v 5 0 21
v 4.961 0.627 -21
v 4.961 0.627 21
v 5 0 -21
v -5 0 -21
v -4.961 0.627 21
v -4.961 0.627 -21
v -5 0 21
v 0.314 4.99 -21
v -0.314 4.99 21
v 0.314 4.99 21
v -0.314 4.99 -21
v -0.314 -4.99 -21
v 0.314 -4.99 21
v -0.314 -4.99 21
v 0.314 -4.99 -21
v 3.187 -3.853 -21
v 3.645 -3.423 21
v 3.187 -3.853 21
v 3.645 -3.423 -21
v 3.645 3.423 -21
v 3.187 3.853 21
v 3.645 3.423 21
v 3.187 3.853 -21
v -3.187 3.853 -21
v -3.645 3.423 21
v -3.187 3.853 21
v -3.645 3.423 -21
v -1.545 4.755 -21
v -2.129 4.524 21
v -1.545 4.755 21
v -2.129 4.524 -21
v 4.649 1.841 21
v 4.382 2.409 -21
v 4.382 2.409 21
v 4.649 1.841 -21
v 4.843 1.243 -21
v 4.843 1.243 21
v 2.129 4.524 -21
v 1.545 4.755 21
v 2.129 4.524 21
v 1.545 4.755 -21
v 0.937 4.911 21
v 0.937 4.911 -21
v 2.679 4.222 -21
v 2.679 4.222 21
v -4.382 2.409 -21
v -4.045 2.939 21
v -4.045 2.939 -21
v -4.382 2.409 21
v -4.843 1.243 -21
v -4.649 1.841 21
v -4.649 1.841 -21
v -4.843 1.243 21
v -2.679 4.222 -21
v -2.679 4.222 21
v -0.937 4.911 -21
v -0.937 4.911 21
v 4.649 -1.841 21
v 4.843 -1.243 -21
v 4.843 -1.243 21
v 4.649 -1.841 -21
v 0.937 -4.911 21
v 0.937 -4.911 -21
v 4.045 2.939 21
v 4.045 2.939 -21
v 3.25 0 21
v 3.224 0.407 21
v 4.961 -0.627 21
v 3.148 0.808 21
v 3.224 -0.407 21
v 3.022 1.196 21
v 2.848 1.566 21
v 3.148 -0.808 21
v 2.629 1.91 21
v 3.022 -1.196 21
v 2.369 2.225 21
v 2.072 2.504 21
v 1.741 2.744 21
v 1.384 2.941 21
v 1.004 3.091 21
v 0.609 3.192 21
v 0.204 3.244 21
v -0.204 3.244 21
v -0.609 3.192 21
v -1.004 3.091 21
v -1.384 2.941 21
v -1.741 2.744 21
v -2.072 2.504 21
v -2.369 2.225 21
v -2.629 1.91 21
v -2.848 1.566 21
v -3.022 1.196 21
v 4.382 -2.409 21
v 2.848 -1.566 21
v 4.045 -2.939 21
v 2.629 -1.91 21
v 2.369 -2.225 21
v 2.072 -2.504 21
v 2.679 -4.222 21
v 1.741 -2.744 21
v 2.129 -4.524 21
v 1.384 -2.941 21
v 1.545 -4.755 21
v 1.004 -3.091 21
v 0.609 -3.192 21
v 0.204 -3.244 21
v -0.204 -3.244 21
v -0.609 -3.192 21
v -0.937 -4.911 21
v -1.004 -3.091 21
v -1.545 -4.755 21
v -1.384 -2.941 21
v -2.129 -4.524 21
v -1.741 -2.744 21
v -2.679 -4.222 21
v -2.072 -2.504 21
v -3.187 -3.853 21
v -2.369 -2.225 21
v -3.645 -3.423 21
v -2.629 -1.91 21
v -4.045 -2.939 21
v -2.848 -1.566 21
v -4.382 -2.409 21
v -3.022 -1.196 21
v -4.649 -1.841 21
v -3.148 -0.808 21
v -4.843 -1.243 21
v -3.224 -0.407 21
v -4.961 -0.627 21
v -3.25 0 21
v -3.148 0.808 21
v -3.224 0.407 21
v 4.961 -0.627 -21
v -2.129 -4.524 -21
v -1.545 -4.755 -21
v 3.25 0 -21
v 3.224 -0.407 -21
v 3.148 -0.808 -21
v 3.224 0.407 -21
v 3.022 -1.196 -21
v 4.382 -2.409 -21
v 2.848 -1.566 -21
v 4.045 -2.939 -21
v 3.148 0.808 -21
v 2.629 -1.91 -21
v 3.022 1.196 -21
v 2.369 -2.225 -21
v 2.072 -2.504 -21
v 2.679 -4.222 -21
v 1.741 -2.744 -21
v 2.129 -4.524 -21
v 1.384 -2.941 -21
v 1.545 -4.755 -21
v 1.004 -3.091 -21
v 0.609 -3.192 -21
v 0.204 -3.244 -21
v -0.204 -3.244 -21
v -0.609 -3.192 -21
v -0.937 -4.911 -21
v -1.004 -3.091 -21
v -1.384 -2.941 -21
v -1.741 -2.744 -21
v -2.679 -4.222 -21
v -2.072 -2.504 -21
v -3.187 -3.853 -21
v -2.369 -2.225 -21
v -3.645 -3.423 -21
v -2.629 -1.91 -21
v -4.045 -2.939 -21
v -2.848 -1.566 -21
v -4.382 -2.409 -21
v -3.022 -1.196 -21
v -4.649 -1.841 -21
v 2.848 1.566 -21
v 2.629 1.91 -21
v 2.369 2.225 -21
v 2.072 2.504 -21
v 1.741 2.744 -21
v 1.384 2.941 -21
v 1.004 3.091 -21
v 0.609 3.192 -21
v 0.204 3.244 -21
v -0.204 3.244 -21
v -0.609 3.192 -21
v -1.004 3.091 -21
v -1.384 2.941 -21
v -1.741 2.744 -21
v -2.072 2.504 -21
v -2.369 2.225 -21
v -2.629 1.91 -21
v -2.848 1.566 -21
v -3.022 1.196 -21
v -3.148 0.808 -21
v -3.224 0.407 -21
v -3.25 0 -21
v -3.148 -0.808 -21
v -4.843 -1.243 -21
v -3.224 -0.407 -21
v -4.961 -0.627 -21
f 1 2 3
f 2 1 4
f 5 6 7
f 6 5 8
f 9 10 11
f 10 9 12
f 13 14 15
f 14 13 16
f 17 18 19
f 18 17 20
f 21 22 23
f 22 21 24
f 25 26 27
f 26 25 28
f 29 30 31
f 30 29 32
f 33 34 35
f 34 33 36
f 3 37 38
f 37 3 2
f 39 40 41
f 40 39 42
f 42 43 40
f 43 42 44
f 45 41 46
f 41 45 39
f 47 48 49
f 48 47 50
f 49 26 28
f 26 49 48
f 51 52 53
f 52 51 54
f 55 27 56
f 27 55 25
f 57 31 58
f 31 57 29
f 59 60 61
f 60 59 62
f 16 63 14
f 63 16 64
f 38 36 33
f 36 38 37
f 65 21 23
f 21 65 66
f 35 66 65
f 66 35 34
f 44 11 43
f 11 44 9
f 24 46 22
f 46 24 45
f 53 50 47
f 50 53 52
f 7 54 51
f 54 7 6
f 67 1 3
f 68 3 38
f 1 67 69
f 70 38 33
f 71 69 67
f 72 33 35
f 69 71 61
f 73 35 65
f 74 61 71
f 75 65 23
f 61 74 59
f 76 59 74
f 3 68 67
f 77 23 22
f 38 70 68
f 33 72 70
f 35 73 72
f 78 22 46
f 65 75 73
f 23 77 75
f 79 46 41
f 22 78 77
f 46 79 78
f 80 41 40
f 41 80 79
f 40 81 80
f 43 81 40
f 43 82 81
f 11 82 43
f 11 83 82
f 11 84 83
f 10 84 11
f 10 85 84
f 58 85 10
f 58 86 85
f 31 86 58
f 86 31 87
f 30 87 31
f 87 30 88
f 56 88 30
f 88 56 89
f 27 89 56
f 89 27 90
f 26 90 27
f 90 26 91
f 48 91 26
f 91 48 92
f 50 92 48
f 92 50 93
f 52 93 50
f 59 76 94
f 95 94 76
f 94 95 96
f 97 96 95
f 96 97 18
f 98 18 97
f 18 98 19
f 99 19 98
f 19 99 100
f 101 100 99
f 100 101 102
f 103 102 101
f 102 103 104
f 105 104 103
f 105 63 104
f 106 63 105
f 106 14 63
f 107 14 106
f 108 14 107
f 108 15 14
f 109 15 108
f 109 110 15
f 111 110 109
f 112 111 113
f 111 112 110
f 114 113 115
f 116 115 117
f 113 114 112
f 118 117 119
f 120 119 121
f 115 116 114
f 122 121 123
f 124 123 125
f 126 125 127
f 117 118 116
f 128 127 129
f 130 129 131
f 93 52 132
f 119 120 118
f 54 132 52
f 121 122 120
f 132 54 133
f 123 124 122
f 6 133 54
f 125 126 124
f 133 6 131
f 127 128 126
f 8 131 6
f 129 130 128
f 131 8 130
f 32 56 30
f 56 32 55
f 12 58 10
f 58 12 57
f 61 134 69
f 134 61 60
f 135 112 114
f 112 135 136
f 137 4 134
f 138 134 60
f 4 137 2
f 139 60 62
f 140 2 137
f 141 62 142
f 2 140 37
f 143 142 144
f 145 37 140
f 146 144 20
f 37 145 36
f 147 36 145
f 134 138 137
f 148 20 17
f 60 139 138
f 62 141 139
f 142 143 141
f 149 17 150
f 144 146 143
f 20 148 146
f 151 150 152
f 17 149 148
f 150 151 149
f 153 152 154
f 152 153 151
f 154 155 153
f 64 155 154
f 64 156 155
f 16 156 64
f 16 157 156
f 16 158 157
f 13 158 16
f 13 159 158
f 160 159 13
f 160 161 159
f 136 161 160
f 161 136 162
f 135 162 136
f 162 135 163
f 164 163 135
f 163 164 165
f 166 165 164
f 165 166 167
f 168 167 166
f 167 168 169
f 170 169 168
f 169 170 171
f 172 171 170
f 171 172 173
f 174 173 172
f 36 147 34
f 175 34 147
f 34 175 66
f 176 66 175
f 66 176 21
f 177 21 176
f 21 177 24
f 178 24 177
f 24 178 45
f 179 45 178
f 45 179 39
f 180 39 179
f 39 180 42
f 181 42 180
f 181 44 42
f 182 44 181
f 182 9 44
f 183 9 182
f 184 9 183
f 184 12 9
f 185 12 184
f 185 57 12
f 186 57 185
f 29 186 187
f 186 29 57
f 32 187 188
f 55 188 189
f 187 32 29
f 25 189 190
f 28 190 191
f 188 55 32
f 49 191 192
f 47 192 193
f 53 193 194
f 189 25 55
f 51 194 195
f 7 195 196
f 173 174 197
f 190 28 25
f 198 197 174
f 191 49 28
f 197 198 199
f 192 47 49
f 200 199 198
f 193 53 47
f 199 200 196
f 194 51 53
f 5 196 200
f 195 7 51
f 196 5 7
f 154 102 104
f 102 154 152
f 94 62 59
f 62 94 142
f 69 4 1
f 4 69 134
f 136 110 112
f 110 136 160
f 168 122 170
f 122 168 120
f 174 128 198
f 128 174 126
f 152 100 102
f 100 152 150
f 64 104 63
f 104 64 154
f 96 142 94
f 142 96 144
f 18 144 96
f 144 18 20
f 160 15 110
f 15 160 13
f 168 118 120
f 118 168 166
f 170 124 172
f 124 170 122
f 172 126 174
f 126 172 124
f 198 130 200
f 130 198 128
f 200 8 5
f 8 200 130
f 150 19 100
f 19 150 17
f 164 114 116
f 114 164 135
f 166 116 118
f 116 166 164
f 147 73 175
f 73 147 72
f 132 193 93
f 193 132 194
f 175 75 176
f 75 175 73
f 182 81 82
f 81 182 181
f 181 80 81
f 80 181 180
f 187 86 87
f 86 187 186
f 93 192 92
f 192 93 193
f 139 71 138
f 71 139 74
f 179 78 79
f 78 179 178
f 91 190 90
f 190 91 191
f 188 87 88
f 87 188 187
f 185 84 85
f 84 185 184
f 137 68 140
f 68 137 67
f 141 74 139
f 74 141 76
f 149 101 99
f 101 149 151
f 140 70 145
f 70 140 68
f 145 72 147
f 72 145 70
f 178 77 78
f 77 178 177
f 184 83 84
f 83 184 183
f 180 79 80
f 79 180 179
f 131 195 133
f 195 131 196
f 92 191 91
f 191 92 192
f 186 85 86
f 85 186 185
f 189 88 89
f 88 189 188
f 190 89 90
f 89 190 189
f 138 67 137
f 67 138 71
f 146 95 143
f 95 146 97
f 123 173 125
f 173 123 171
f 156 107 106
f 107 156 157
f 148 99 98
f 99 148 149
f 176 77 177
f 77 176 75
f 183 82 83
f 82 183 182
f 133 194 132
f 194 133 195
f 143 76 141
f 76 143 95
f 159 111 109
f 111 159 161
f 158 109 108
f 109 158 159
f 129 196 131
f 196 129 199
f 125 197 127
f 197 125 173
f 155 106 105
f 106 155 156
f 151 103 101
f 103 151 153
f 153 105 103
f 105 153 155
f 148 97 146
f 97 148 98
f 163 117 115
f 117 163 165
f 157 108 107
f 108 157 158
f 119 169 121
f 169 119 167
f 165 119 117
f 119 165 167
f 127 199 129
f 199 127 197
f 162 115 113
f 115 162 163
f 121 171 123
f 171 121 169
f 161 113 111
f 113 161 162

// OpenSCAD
$fn = 50;


difference() {
	union() {
		translate(v = [0, 0, -21.0000000000]) {
			cylinder(h = 42, r = 5.0000000000);
		}
	}
	union() {
		translate(v = [0, 0, -100.0000000000]) {
			cylinder(h = 200, r = 3.2500000000);
		}
	}
}
